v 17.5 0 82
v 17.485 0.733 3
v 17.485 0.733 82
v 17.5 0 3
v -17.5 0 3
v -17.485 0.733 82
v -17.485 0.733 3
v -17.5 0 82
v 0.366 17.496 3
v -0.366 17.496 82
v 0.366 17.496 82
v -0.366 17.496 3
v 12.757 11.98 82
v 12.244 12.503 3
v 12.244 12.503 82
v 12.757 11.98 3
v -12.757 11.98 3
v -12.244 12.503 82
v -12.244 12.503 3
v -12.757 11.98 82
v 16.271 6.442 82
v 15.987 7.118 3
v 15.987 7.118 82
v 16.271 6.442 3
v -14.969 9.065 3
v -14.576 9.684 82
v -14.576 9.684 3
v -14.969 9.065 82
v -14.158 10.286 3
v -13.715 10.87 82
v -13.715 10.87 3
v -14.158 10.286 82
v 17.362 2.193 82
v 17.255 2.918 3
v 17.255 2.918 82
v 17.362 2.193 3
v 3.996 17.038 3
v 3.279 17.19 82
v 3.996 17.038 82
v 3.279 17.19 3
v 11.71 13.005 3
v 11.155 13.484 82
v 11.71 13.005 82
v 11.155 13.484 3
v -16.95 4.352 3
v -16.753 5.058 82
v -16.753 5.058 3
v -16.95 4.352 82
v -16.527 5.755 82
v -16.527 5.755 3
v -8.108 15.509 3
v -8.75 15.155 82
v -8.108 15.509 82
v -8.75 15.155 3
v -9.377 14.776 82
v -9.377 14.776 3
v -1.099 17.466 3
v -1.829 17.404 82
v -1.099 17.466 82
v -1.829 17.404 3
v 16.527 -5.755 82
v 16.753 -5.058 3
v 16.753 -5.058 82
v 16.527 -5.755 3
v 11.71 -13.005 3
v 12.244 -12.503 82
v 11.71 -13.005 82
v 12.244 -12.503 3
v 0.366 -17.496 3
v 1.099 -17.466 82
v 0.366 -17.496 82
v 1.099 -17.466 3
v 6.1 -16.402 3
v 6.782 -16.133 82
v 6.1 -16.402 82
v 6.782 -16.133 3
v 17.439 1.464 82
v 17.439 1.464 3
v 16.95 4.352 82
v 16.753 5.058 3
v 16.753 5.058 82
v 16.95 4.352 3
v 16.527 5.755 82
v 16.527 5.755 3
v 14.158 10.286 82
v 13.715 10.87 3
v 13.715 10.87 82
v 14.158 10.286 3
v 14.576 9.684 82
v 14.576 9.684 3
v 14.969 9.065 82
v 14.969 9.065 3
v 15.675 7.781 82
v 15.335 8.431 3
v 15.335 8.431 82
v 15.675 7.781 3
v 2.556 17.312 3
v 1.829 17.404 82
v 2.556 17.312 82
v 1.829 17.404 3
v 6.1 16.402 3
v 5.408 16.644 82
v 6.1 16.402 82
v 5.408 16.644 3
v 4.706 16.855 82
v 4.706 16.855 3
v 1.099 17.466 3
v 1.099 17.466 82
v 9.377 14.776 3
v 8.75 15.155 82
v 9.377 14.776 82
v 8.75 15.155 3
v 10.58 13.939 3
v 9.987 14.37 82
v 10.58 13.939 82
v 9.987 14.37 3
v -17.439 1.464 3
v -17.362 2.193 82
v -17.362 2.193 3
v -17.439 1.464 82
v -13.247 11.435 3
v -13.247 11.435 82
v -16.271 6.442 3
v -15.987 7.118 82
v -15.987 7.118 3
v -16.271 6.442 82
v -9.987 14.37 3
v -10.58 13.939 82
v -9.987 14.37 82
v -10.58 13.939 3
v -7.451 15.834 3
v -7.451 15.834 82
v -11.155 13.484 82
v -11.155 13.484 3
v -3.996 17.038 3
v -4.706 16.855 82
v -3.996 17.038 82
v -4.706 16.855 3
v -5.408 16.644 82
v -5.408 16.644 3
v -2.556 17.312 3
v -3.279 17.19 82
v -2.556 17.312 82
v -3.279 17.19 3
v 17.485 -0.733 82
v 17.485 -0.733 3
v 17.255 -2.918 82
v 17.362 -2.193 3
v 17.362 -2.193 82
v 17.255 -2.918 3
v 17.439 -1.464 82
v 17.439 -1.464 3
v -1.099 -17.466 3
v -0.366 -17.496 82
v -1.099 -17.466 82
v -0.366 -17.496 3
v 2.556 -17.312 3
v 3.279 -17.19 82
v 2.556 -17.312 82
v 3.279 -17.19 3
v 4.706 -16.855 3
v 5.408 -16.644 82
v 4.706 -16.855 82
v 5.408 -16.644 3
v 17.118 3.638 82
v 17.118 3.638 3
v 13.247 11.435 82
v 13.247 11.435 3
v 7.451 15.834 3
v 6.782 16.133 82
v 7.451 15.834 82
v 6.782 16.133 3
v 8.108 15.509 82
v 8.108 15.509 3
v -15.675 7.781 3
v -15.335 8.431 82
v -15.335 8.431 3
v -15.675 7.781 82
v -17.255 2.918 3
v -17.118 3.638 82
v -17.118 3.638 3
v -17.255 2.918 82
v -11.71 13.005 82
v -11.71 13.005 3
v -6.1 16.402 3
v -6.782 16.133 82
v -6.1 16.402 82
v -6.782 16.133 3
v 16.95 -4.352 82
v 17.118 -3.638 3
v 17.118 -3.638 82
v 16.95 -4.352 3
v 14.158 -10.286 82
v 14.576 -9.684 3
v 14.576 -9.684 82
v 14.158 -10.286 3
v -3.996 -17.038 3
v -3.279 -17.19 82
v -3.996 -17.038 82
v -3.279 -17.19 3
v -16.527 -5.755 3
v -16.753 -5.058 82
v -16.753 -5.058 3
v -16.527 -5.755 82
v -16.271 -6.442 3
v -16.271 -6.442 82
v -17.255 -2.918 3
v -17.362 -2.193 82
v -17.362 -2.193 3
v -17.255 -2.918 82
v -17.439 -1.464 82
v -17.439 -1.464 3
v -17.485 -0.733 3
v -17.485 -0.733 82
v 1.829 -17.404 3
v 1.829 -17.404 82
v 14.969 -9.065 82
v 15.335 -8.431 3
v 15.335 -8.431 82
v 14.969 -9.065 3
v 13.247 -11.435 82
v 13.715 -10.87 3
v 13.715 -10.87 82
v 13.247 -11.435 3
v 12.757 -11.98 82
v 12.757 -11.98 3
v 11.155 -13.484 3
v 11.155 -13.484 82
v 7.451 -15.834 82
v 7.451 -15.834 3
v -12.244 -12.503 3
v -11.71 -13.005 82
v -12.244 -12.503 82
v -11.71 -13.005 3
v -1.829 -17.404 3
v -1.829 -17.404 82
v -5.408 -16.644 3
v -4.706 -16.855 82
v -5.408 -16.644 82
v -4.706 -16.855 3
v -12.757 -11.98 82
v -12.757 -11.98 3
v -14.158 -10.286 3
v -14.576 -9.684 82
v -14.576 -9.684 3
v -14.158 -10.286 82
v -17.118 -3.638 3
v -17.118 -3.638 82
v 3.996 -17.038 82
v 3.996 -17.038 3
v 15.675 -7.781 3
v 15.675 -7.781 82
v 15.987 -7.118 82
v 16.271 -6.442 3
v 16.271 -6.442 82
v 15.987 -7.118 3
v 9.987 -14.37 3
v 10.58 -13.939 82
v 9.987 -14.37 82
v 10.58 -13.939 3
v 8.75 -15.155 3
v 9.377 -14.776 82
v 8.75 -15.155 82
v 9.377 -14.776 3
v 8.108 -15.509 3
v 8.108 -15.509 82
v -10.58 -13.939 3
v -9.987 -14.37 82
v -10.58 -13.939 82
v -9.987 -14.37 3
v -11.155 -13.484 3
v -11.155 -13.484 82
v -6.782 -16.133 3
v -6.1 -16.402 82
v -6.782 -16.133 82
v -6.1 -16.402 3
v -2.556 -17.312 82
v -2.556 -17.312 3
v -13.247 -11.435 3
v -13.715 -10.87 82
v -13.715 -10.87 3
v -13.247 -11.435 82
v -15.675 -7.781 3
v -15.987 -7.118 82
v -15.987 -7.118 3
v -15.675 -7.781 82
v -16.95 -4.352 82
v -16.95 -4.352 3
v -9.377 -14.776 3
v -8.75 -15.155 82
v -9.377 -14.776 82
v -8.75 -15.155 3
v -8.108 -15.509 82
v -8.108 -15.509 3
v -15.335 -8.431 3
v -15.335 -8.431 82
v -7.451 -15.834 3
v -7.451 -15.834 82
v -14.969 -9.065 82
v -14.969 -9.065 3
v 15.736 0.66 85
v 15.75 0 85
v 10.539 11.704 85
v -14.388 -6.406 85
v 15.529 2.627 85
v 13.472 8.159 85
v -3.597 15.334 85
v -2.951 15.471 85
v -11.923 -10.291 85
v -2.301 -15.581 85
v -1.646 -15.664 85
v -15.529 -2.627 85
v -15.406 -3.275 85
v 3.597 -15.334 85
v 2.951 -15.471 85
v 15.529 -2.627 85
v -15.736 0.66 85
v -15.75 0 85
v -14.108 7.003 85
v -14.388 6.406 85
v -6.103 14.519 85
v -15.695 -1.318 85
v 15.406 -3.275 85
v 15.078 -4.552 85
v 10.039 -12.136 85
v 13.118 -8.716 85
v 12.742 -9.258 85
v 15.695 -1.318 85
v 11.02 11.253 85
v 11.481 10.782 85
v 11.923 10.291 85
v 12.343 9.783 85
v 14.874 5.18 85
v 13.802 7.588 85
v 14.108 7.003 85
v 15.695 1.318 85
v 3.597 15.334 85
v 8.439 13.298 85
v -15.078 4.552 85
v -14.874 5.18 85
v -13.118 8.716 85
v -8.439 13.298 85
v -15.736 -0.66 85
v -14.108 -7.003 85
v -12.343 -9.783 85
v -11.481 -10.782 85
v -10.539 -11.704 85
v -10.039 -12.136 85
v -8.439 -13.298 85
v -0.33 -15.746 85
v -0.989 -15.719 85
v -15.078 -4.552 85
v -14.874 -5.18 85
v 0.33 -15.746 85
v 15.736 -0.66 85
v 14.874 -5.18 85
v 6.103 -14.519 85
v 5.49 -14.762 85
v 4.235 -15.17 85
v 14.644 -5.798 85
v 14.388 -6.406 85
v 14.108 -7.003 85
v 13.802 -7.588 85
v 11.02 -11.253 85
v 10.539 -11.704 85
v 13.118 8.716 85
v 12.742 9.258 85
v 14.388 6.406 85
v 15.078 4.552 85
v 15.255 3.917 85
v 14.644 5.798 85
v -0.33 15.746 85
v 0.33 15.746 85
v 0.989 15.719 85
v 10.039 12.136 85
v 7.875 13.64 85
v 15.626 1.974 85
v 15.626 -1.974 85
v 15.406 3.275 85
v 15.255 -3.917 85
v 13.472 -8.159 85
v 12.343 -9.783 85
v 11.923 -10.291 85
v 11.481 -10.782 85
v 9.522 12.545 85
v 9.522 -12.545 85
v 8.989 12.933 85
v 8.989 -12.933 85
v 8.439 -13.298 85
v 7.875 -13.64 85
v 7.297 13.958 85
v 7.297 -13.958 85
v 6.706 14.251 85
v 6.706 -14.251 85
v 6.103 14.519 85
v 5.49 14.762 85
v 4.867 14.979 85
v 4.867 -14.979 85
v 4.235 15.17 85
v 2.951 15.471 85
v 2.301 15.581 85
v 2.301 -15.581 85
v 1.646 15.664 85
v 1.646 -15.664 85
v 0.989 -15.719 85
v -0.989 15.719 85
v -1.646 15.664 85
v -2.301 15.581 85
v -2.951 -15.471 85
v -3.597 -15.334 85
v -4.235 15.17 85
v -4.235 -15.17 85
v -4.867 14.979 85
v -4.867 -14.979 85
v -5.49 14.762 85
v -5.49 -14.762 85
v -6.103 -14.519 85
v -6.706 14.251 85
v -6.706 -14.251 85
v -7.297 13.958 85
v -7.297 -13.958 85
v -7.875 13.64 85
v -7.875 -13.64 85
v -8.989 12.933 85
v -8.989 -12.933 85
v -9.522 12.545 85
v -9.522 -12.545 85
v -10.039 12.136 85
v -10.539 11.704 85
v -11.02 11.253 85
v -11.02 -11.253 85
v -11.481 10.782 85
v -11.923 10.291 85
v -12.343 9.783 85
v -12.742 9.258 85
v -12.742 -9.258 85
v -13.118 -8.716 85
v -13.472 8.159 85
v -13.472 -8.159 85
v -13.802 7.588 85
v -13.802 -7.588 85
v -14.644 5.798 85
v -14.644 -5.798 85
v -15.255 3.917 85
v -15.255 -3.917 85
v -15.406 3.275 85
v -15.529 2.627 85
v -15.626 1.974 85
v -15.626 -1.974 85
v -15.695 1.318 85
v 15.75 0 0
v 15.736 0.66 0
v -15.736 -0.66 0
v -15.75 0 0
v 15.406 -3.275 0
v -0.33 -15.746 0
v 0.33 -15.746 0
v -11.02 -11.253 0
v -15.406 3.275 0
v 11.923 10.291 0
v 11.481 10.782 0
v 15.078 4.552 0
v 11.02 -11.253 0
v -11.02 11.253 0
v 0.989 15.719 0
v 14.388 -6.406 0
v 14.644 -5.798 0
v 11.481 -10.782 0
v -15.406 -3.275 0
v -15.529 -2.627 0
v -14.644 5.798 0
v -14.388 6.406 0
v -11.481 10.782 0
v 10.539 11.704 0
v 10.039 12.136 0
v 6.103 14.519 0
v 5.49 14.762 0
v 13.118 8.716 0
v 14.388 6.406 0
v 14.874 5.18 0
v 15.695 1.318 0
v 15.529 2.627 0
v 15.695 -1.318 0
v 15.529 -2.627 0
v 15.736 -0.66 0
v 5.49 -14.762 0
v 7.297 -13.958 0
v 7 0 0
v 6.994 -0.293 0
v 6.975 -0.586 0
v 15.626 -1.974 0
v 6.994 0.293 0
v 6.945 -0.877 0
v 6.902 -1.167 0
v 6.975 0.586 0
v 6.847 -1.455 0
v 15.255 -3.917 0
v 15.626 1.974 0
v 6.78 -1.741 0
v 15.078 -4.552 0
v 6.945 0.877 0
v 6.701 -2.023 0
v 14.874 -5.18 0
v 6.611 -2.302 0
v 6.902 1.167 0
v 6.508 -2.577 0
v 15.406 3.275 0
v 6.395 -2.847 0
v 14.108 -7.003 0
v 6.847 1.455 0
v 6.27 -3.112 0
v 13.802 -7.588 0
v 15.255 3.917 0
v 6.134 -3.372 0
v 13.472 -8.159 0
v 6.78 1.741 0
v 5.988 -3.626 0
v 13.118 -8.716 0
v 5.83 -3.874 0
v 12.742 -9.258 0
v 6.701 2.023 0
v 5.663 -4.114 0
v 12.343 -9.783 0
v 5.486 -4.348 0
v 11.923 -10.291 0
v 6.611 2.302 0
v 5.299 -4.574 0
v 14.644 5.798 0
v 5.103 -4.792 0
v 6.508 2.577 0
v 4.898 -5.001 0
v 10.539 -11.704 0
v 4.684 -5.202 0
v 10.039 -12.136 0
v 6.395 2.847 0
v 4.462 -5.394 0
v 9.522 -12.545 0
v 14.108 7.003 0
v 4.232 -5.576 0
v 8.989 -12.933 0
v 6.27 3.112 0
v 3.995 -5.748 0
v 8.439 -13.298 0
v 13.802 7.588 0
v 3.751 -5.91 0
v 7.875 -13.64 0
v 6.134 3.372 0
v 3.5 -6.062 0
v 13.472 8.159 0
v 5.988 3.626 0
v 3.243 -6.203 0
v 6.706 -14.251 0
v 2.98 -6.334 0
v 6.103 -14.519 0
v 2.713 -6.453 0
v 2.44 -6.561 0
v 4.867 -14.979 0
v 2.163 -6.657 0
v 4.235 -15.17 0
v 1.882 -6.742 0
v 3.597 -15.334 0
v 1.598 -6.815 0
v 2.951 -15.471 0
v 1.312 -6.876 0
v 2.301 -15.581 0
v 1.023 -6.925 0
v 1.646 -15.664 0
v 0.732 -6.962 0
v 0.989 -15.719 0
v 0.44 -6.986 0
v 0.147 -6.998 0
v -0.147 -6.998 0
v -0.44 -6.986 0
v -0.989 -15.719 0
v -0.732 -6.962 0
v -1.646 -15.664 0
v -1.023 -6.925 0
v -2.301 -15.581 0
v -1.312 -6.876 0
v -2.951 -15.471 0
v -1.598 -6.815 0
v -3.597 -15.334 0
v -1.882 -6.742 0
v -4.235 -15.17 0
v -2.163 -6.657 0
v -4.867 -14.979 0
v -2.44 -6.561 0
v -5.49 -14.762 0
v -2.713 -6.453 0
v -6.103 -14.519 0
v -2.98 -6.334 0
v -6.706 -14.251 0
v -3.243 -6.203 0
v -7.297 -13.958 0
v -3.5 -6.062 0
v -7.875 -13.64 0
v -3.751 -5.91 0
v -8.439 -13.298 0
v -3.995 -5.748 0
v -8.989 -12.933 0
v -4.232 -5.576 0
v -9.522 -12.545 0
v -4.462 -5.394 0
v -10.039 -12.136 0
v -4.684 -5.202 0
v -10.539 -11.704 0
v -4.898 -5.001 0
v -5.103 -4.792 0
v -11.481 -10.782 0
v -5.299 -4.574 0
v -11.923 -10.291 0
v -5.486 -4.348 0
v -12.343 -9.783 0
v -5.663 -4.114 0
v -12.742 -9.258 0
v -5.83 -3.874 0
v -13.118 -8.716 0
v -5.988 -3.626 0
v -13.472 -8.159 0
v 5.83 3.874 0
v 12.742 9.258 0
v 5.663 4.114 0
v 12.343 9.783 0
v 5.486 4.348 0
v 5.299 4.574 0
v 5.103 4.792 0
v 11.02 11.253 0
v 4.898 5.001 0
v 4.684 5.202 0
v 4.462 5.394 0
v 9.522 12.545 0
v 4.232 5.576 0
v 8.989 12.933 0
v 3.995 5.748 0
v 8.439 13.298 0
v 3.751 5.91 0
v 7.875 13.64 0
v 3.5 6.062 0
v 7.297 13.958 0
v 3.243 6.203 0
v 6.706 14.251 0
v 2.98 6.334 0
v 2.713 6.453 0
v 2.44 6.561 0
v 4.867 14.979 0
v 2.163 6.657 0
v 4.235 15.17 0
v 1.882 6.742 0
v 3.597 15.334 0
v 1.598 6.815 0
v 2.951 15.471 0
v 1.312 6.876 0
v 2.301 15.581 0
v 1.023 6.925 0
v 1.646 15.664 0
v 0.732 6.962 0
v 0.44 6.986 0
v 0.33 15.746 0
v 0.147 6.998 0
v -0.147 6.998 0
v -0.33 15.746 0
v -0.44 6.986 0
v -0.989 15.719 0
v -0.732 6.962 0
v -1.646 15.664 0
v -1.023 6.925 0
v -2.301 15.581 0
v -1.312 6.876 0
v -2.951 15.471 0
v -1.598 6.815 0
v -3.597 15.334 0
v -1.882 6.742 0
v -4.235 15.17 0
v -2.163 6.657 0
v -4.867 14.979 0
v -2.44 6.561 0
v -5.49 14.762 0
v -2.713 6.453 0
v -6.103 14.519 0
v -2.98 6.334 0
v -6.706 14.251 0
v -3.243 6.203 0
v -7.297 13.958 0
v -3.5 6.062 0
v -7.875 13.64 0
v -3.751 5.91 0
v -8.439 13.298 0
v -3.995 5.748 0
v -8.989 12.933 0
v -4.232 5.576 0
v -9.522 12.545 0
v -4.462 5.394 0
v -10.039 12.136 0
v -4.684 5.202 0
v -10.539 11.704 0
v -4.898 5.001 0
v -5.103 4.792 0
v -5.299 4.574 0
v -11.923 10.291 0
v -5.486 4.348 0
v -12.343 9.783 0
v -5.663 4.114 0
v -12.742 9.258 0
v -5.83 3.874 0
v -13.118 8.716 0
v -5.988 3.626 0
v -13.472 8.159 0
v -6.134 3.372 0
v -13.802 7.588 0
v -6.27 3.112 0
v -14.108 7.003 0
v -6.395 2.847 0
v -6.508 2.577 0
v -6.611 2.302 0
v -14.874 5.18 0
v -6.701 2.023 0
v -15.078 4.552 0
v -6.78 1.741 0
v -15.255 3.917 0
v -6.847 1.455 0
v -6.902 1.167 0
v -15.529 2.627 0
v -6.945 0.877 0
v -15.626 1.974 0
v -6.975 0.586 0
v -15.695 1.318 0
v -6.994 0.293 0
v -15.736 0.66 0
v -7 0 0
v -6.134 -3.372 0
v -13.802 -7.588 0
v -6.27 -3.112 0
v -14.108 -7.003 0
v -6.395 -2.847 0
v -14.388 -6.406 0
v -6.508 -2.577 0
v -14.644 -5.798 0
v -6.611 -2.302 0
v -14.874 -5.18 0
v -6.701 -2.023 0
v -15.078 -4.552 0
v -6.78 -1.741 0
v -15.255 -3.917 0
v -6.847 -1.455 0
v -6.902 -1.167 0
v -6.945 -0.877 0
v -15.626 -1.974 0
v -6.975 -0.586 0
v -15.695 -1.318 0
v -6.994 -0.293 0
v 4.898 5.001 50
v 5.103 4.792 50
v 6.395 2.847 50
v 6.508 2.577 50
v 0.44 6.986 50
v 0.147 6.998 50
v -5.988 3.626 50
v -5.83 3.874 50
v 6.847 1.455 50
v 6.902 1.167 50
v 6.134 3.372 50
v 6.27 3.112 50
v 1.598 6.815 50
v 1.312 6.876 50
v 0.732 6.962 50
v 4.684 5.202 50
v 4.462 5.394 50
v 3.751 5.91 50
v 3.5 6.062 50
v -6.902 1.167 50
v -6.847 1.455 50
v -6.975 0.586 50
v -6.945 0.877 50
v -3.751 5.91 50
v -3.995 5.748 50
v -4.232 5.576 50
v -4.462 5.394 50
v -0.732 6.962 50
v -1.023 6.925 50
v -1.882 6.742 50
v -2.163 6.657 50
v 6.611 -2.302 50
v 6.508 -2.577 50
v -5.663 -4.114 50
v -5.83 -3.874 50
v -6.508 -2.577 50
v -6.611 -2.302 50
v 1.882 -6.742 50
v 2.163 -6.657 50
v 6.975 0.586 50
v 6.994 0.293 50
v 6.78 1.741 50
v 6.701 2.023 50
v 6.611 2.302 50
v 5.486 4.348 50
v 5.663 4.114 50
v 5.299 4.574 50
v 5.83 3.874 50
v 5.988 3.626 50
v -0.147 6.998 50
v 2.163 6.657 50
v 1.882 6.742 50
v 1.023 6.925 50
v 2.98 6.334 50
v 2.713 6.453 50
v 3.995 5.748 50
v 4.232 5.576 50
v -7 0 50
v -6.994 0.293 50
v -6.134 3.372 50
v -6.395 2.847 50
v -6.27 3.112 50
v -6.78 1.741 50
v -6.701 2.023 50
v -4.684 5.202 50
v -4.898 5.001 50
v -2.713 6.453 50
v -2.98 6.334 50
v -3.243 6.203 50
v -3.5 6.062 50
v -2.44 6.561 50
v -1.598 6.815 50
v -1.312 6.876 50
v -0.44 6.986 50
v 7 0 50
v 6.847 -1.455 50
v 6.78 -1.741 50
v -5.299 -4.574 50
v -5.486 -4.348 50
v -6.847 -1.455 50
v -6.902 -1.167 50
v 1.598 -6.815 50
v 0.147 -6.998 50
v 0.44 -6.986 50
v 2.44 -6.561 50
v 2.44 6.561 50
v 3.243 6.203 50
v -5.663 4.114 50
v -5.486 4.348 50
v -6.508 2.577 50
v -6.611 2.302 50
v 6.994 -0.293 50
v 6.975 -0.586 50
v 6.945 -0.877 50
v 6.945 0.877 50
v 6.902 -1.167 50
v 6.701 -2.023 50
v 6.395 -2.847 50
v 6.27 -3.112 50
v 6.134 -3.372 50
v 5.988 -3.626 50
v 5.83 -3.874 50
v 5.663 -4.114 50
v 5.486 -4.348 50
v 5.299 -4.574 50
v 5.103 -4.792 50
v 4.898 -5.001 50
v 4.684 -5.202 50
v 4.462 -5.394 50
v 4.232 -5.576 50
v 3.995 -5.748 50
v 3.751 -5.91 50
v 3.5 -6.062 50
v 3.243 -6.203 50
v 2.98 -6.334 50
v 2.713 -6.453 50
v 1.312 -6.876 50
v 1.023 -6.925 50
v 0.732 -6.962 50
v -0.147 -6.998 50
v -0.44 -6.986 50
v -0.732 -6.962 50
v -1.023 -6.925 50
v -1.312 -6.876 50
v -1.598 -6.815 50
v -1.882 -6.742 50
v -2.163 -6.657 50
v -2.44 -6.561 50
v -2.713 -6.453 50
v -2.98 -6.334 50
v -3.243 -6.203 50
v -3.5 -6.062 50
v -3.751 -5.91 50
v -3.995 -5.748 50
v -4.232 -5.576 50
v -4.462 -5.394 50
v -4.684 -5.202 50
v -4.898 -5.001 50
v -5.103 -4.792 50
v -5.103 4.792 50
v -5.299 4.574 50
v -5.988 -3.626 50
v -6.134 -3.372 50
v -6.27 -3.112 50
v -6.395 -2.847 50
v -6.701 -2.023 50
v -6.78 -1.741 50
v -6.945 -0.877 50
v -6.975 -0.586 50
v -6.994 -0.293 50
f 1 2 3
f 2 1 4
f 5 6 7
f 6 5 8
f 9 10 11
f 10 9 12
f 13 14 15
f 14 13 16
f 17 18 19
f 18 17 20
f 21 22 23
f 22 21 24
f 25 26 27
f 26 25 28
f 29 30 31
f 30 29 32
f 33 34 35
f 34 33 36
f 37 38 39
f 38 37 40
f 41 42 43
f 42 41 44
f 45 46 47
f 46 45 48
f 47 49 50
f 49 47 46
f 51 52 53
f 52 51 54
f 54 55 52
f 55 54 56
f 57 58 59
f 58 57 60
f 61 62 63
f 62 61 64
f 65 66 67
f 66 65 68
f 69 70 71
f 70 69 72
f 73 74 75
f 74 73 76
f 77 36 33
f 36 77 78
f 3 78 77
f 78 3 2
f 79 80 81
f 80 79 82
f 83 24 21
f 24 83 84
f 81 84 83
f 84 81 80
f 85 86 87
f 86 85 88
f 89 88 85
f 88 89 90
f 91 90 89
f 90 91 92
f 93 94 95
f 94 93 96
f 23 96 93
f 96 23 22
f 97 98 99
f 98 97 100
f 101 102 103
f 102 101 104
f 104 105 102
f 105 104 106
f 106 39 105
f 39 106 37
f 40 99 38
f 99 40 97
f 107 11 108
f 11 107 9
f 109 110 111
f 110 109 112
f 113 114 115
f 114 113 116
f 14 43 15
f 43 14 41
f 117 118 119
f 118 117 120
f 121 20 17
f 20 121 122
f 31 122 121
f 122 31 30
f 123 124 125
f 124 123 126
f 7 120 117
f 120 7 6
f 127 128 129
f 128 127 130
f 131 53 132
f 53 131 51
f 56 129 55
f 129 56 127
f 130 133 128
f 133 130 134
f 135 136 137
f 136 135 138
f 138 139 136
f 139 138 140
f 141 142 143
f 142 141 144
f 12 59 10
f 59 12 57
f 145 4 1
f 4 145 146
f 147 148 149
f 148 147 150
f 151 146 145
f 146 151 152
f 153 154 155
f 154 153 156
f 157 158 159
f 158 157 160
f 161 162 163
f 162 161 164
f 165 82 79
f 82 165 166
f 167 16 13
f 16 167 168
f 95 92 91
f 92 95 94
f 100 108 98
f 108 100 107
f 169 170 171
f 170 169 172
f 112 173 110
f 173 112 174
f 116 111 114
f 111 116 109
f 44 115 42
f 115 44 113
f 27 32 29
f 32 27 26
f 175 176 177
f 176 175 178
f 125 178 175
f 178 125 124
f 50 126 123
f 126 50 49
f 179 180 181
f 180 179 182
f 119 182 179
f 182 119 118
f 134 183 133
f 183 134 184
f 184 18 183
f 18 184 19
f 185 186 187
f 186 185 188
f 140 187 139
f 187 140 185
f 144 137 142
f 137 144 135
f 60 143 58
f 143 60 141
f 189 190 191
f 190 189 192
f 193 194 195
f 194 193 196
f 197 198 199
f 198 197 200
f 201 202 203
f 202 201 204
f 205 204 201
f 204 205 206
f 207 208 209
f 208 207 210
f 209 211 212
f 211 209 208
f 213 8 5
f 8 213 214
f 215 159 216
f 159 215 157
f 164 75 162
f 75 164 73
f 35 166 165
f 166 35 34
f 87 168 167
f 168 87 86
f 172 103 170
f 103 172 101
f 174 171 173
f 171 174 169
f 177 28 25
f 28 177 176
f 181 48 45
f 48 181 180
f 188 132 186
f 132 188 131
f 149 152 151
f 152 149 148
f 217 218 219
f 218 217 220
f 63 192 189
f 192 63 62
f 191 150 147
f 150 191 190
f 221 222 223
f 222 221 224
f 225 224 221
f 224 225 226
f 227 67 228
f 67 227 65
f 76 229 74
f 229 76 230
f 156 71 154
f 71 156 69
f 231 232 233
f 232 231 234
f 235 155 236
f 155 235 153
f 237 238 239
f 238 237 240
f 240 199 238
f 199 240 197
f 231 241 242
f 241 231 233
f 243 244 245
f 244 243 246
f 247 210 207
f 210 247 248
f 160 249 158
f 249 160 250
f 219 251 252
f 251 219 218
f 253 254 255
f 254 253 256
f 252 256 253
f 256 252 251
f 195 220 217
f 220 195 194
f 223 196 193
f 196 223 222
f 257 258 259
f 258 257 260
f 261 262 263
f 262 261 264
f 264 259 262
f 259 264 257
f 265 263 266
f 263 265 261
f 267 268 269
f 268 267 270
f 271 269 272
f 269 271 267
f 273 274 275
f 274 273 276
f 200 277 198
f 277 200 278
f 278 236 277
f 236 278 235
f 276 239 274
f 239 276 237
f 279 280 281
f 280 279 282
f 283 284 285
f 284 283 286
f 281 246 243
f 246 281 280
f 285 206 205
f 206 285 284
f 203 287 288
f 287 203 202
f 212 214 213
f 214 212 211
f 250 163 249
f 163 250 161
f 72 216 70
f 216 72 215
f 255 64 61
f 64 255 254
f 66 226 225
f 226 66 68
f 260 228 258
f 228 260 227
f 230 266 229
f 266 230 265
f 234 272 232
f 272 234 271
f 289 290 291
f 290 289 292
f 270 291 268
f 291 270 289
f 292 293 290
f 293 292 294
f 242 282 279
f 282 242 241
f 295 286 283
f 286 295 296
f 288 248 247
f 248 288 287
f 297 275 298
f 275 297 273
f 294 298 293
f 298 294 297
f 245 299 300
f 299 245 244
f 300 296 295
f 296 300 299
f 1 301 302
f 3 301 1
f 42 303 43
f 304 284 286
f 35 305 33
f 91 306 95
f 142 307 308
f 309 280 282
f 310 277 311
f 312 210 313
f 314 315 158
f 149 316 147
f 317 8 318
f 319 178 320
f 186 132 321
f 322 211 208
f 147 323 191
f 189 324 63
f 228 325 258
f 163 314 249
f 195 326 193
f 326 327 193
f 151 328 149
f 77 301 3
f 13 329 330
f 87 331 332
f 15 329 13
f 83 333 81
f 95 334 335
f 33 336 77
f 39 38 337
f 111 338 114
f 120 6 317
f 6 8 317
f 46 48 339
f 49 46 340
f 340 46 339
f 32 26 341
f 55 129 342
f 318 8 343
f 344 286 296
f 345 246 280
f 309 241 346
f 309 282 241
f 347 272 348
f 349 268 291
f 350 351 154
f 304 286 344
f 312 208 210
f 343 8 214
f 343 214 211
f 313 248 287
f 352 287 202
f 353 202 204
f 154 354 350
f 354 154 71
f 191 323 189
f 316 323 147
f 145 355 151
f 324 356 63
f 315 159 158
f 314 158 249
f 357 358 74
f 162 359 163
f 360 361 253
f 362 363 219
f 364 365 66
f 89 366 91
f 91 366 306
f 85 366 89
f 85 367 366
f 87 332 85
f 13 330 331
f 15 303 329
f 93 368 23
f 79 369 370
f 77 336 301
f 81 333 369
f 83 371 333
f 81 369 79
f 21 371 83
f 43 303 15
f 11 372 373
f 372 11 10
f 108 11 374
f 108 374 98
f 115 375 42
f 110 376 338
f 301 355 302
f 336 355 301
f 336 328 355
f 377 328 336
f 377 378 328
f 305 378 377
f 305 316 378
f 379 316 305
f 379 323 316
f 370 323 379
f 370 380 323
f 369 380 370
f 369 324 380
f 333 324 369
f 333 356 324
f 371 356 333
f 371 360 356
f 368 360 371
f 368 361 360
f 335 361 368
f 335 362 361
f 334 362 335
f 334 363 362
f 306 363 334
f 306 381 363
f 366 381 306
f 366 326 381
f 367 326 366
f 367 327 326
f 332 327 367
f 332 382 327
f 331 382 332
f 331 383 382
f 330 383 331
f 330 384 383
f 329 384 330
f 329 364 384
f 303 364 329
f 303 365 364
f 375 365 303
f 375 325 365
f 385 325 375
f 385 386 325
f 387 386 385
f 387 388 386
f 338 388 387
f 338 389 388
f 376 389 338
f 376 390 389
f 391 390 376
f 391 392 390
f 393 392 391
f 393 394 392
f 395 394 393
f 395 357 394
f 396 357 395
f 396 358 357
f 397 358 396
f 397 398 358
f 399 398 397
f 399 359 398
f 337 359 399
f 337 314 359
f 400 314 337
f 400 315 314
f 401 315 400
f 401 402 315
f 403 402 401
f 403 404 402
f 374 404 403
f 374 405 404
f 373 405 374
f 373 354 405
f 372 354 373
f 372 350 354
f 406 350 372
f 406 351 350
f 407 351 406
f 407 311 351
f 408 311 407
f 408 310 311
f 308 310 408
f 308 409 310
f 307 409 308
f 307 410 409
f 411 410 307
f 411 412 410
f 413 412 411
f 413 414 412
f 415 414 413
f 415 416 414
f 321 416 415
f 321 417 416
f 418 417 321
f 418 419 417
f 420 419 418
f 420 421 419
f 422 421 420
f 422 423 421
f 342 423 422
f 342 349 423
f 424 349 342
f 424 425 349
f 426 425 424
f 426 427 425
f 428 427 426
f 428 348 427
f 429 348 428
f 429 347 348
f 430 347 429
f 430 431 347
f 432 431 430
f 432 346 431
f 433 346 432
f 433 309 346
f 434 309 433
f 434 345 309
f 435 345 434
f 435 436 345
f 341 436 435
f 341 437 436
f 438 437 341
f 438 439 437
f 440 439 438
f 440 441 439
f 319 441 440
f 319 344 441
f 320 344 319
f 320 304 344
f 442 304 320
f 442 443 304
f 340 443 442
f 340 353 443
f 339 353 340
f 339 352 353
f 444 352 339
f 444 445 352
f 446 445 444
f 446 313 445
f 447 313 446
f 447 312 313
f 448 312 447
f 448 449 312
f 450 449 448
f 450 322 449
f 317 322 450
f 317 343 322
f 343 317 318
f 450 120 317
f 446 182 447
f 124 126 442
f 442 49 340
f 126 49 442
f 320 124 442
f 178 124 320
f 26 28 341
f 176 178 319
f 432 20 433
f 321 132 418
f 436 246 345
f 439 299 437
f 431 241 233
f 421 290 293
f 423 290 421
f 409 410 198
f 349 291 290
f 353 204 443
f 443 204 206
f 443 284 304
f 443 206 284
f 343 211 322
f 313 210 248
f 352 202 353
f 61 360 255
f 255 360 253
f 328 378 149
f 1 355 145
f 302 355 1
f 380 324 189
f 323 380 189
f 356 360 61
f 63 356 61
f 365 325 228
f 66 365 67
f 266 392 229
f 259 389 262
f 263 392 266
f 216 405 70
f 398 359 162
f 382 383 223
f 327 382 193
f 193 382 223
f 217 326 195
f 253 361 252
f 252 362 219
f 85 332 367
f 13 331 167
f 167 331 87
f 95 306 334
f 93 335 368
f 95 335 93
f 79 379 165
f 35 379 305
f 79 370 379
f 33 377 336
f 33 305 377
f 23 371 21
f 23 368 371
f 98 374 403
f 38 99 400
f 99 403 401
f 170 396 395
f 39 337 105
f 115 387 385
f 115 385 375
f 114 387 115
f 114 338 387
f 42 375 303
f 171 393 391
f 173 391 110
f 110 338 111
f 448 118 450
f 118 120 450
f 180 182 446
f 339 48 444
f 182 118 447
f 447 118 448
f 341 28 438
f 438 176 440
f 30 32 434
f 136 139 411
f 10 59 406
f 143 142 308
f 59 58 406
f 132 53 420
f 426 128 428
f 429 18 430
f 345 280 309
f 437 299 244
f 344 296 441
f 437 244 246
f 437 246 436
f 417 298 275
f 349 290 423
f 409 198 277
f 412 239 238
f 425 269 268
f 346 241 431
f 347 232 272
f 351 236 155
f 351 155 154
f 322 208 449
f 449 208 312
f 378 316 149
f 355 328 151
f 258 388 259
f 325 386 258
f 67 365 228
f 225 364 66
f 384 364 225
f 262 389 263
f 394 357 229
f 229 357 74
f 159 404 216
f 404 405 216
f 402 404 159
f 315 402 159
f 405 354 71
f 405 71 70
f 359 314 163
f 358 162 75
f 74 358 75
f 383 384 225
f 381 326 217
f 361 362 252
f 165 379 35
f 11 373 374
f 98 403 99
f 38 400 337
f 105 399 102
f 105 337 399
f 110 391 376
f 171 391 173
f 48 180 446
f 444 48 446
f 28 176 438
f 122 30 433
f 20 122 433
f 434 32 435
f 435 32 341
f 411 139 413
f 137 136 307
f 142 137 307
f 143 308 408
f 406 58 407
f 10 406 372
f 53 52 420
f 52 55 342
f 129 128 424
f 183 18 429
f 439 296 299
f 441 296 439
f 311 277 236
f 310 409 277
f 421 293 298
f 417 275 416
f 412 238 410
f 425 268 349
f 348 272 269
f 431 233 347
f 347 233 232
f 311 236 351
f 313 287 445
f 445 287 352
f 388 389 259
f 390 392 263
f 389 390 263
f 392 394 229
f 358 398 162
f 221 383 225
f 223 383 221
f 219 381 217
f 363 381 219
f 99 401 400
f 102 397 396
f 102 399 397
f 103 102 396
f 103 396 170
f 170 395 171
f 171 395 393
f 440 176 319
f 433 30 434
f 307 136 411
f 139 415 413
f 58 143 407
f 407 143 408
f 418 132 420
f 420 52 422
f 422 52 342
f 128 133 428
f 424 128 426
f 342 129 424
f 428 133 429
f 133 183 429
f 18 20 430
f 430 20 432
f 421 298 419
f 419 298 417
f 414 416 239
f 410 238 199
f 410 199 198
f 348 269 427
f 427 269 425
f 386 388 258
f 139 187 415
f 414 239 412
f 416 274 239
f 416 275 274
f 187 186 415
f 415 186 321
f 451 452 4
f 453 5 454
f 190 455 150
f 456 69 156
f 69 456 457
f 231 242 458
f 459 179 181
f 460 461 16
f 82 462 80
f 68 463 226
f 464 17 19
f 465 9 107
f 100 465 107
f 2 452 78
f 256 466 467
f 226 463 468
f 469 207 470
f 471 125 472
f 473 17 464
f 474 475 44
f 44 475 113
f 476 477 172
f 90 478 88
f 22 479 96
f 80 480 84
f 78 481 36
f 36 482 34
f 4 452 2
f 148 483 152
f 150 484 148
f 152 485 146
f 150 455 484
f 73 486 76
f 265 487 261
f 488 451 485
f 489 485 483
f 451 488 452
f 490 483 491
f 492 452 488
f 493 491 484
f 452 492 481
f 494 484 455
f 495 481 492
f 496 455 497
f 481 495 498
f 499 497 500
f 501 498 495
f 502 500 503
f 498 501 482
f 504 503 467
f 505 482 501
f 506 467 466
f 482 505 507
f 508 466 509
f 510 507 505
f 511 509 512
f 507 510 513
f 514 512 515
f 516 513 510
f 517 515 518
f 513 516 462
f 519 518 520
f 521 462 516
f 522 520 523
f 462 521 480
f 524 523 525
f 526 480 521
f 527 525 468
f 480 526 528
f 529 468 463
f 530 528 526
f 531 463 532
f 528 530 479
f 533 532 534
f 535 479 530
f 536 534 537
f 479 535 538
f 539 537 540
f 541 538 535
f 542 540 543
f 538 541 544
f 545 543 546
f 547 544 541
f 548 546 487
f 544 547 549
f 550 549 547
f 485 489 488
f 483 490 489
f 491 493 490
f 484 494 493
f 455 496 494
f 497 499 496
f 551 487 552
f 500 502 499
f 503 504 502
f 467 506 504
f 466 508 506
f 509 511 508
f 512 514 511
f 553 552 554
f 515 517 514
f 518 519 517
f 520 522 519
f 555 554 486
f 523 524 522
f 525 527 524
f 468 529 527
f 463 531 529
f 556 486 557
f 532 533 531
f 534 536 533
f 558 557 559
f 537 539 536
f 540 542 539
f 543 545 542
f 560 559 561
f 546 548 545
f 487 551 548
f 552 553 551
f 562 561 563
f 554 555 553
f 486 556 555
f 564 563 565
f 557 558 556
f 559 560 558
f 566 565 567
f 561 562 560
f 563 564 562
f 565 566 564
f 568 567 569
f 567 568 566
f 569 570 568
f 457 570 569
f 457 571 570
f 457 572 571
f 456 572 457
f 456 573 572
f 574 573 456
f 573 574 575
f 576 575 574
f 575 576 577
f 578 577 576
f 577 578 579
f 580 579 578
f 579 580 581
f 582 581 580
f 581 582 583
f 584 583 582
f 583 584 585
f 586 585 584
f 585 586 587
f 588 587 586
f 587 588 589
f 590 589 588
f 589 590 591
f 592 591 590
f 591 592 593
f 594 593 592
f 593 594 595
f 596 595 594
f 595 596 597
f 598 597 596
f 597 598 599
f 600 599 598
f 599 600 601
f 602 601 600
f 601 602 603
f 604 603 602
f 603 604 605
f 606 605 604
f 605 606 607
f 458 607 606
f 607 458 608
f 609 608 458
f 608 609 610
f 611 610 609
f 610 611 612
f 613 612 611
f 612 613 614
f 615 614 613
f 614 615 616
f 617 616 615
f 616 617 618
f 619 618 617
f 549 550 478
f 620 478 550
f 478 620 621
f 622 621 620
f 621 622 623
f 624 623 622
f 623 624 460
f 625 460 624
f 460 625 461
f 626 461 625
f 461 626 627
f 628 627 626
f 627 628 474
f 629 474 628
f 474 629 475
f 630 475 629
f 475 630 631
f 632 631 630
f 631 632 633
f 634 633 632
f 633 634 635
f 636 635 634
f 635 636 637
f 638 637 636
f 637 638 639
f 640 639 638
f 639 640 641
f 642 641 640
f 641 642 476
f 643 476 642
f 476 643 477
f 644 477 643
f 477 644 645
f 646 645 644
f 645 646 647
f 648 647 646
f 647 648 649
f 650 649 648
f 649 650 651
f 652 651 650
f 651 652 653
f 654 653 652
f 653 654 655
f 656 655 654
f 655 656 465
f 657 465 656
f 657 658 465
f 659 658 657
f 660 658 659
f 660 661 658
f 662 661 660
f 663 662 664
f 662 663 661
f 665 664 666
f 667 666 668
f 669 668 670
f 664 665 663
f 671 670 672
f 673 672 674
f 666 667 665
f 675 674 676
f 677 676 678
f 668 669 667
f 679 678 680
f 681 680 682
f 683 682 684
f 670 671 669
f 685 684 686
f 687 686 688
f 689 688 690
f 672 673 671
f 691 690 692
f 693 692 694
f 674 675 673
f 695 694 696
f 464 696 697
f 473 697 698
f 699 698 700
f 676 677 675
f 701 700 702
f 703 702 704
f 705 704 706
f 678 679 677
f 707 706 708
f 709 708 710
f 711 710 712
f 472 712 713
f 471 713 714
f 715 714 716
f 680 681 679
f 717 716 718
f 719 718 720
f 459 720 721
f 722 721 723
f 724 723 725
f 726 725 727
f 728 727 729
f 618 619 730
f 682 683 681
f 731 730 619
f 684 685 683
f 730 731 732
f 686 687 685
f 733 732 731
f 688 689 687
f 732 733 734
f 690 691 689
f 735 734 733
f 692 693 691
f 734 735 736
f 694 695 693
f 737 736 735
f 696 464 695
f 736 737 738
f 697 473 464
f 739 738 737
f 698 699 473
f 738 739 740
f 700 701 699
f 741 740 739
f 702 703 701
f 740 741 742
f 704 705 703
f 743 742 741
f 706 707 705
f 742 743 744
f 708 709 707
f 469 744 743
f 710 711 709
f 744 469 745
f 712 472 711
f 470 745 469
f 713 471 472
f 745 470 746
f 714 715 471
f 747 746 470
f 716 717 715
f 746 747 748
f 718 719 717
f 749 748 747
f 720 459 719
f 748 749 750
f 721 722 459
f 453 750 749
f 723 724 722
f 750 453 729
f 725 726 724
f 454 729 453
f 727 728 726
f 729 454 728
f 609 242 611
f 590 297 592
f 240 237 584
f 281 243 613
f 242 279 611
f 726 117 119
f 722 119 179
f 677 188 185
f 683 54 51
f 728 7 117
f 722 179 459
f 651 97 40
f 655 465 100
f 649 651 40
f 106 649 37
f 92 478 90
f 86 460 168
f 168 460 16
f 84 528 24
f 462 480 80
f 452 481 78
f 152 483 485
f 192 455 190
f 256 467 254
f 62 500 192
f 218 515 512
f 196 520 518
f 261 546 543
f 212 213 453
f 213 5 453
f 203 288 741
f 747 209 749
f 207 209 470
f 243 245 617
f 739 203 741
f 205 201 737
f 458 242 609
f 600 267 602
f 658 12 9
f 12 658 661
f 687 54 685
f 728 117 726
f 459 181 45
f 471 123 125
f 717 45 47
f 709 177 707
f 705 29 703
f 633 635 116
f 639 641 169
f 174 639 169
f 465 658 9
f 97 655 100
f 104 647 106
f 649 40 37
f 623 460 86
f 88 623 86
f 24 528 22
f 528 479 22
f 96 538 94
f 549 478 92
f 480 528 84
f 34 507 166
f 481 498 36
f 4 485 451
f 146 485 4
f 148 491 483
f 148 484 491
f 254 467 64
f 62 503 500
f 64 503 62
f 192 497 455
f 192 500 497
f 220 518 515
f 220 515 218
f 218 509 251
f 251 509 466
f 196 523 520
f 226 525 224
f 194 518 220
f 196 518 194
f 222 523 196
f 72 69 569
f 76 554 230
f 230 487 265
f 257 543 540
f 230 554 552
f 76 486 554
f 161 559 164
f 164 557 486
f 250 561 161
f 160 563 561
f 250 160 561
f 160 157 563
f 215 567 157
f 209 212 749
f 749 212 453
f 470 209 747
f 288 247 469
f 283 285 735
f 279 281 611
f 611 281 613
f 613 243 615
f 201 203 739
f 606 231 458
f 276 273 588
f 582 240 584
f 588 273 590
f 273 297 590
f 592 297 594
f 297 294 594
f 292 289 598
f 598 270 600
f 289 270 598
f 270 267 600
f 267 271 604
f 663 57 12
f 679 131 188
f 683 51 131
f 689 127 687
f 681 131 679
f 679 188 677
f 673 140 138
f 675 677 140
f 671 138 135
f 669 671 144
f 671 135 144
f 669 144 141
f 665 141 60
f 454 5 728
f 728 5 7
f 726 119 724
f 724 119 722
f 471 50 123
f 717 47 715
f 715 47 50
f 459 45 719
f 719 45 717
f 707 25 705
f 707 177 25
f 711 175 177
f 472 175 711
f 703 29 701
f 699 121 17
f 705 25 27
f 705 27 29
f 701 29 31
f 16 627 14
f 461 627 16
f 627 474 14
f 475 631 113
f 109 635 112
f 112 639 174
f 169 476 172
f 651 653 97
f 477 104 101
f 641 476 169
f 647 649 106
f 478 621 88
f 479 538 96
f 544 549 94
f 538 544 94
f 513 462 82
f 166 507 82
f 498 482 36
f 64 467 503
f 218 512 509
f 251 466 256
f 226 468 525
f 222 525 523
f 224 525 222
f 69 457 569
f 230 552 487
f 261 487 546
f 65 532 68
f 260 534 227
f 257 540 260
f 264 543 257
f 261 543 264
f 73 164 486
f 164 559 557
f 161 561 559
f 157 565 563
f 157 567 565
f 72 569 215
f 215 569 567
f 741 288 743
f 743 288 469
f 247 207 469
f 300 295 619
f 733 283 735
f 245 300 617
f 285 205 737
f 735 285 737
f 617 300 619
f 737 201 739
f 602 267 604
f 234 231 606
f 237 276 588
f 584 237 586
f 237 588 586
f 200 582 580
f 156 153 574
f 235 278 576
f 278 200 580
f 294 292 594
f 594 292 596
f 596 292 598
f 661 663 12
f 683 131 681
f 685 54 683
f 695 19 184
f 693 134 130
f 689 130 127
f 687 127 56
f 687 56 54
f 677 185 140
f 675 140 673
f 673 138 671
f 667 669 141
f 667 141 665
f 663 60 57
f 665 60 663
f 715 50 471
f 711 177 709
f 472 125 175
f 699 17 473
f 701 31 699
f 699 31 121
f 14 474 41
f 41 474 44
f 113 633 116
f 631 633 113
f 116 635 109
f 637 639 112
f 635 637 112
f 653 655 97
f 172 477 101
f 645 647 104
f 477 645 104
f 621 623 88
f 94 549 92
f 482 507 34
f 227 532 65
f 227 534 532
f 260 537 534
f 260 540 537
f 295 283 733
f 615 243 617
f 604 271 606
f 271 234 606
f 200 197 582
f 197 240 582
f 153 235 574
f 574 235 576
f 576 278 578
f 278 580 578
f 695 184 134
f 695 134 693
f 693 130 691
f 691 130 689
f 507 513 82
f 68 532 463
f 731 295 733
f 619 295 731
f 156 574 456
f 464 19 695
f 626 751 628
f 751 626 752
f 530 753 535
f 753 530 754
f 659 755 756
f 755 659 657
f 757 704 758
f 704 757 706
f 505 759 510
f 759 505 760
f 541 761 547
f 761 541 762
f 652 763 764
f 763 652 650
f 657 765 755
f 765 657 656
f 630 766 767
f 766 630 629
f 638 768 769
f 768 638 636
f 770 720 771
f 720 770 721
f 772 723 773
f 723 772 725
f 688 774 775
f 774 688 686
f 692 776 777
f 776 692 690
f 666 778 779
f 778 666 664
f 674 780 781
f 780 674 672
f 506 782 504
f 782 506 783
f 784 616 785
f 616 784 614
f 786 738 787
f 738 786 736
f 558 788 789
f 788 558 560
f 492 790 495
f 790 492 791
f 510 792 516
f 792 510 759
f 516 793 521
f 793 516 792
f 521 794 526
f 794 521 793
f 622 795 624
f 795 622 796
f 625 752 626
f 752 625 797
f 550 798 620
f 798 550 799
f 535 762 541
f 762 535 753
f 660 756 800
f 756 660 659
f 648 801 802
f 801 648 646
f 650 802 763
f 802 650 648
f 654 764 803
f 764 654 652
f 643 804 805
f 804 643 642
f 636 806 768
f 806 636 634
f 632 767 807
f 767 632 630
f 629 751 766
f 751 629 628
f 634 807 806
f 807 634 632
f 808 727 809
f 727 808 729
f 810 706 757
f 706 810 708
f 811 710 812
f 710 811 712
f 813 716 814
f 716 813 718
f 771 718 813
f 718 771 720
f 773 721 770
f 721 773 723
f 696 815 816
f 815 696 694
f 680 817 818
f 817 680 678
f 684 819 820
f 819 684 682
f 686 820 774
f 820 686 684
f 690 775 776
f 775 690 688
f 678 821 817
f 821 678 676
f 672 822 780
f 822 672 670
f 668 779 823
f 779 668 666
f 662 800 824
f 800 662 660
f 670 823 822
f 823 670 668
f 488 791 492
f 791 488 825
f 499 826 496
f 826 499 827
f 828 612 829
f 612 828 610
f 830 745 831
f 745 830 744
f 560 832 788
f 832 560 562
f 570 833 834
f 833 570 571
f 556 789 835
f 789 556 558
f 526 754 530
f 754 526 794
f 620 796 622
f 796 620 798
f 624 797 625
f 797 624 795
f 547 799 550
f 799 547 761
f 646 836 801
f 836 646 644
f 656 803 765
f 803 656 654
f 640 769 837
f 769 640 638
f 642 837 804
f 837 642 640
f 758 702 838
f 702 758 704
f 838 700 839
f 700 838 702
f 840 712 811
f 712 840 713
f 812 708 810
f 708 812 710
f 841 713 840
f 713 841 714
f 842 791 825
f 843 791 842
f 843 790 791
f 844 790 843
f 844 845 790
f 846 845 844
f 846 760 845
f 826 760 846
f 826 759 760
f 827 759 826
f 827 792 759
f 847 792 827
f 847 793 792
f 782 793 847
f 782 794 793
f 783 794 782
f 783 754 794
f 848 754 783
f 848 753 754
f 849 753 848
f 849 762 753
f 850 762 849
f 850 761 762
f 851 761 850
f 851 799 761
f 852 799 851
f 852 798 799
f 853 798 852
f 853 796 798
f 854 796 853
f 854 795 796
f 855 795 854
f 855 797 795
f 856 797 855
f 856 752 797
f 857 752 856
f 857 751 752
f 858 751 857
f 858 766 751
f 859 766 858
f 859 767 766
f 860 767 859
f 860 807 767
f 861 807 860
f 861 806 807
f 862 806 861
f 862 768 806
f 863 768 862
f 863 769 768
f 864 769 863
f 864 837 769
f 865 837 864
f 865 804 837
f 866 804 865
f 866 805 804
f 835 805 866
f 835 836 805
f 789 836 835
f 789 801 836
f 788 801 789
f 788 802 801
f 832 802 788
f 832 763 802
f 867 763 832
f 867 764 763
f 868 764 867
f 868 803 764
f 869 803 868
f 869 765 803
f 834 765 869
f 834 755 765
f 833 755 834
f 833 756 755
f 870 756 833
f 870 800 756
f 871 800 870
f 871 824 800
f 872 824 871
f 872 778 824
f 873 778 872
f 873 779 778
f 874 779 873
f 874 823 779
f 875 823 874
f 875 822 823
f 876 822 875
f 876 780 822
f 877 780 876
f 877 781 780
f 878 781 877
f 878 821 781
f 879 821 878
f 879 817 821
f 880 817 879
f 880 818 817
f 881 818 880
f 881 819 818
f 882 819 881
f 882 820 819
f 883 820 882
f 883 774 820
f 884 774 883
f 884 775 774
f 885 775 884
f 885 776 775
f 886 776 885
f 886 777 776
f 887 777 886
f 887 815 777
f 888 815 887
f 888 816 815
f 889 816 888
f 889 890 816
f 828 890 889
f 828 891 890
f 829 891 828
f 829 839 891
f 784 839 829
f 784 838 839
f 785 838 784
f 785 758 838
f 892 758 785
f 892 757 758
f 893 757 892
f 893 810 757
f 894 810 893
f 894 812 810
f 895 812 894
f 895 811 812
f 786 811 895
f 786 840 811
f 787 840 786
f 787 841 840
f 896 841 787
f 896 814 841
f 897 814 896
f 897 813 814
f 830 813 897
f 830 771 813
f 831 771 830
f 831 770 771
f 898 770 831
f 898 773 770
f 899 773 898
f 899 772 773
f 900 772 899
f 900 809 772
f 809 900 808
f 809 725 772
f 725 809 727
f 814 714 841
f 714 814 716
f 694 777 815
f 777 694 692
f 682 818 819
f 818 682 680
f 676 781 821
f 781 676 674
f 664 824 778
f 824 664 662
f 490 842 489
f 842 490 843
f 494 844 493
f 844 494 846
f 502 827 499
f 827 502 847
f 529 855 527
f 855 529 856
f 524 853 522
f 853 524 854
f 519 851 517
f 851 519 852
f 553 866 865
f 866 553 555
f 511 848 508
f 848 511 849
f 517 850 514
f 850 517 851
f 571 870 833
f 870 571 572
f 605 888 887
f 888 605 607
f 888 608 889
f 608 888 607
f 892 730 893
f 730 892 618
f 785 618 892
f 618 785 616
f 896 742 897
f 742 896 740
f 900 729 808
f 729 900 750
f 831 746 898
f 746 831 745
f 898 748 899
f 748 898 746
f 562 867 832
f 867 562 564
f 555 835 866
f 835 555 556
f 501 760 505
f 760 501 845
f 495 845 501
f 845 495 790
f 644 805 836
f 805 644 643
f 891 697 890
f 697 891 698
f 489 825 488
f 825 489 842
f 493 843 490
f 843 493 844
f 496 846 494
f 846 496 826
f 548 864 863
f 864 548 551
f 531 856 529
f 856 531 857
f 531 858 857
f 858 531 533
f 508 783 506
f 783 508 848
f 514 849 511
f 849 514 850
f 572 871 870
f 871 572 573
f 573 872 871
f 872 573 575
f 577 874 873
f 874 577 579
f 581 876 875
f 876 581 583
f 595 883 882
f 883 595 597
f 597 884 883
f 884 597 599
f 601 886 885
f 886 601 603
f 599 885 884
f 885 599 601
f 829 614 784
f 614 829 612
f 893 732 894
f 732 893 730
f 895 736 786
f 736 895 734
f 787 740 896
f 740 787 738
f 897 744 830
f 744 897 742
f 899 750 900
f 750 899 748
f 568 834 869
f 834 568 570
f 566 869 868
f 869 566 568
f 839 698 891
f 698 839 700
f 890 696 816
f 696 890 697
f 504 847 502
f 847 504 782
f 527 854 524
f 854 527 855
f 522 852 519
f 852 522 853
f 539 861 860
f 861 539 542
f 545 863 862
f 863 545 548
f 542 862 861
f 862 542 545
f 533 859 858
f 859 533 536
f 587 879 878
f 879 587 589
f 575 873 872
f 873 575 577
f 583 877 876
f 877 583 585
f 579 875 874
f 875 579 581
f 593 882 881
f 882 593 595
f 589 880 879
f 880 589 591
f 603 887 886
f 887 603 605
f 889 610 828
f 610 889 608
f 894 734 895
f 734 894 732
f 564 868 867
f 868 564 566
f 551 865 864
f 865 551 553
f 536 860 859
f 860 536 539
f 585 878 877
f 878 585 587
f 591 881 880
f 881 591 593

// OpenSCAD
$fn=150;

shaft_diameter = 14;
shaft_length = 50;
//shaft_cut_width = 5;
//shaft_cut_depth = 7;

outer_diameter = 35;
outer_length = 85;

phase_height = 3;
phase_ratio = 0.9;

difference(){
    // body
    union(){
        h = outer_length - phase_height * 2;
        translate([0,0,phase_height])
            cylinder(d=outer_diameter, h=h);
        // top phase
        translate([0,0,h + phase_height])
            cylinder(d1=outer_diameter, d2 = outer_diameter * phase_ratio, h=phase_height);
        // bottom phase
        cylinder(d2=outer_diameter, d1 = outer_diameter * phase_ratio, h=phase_height);
    }
    // hol for the shaft
    cylinder(d=shaft_diameter, h=shaft_length);
}
